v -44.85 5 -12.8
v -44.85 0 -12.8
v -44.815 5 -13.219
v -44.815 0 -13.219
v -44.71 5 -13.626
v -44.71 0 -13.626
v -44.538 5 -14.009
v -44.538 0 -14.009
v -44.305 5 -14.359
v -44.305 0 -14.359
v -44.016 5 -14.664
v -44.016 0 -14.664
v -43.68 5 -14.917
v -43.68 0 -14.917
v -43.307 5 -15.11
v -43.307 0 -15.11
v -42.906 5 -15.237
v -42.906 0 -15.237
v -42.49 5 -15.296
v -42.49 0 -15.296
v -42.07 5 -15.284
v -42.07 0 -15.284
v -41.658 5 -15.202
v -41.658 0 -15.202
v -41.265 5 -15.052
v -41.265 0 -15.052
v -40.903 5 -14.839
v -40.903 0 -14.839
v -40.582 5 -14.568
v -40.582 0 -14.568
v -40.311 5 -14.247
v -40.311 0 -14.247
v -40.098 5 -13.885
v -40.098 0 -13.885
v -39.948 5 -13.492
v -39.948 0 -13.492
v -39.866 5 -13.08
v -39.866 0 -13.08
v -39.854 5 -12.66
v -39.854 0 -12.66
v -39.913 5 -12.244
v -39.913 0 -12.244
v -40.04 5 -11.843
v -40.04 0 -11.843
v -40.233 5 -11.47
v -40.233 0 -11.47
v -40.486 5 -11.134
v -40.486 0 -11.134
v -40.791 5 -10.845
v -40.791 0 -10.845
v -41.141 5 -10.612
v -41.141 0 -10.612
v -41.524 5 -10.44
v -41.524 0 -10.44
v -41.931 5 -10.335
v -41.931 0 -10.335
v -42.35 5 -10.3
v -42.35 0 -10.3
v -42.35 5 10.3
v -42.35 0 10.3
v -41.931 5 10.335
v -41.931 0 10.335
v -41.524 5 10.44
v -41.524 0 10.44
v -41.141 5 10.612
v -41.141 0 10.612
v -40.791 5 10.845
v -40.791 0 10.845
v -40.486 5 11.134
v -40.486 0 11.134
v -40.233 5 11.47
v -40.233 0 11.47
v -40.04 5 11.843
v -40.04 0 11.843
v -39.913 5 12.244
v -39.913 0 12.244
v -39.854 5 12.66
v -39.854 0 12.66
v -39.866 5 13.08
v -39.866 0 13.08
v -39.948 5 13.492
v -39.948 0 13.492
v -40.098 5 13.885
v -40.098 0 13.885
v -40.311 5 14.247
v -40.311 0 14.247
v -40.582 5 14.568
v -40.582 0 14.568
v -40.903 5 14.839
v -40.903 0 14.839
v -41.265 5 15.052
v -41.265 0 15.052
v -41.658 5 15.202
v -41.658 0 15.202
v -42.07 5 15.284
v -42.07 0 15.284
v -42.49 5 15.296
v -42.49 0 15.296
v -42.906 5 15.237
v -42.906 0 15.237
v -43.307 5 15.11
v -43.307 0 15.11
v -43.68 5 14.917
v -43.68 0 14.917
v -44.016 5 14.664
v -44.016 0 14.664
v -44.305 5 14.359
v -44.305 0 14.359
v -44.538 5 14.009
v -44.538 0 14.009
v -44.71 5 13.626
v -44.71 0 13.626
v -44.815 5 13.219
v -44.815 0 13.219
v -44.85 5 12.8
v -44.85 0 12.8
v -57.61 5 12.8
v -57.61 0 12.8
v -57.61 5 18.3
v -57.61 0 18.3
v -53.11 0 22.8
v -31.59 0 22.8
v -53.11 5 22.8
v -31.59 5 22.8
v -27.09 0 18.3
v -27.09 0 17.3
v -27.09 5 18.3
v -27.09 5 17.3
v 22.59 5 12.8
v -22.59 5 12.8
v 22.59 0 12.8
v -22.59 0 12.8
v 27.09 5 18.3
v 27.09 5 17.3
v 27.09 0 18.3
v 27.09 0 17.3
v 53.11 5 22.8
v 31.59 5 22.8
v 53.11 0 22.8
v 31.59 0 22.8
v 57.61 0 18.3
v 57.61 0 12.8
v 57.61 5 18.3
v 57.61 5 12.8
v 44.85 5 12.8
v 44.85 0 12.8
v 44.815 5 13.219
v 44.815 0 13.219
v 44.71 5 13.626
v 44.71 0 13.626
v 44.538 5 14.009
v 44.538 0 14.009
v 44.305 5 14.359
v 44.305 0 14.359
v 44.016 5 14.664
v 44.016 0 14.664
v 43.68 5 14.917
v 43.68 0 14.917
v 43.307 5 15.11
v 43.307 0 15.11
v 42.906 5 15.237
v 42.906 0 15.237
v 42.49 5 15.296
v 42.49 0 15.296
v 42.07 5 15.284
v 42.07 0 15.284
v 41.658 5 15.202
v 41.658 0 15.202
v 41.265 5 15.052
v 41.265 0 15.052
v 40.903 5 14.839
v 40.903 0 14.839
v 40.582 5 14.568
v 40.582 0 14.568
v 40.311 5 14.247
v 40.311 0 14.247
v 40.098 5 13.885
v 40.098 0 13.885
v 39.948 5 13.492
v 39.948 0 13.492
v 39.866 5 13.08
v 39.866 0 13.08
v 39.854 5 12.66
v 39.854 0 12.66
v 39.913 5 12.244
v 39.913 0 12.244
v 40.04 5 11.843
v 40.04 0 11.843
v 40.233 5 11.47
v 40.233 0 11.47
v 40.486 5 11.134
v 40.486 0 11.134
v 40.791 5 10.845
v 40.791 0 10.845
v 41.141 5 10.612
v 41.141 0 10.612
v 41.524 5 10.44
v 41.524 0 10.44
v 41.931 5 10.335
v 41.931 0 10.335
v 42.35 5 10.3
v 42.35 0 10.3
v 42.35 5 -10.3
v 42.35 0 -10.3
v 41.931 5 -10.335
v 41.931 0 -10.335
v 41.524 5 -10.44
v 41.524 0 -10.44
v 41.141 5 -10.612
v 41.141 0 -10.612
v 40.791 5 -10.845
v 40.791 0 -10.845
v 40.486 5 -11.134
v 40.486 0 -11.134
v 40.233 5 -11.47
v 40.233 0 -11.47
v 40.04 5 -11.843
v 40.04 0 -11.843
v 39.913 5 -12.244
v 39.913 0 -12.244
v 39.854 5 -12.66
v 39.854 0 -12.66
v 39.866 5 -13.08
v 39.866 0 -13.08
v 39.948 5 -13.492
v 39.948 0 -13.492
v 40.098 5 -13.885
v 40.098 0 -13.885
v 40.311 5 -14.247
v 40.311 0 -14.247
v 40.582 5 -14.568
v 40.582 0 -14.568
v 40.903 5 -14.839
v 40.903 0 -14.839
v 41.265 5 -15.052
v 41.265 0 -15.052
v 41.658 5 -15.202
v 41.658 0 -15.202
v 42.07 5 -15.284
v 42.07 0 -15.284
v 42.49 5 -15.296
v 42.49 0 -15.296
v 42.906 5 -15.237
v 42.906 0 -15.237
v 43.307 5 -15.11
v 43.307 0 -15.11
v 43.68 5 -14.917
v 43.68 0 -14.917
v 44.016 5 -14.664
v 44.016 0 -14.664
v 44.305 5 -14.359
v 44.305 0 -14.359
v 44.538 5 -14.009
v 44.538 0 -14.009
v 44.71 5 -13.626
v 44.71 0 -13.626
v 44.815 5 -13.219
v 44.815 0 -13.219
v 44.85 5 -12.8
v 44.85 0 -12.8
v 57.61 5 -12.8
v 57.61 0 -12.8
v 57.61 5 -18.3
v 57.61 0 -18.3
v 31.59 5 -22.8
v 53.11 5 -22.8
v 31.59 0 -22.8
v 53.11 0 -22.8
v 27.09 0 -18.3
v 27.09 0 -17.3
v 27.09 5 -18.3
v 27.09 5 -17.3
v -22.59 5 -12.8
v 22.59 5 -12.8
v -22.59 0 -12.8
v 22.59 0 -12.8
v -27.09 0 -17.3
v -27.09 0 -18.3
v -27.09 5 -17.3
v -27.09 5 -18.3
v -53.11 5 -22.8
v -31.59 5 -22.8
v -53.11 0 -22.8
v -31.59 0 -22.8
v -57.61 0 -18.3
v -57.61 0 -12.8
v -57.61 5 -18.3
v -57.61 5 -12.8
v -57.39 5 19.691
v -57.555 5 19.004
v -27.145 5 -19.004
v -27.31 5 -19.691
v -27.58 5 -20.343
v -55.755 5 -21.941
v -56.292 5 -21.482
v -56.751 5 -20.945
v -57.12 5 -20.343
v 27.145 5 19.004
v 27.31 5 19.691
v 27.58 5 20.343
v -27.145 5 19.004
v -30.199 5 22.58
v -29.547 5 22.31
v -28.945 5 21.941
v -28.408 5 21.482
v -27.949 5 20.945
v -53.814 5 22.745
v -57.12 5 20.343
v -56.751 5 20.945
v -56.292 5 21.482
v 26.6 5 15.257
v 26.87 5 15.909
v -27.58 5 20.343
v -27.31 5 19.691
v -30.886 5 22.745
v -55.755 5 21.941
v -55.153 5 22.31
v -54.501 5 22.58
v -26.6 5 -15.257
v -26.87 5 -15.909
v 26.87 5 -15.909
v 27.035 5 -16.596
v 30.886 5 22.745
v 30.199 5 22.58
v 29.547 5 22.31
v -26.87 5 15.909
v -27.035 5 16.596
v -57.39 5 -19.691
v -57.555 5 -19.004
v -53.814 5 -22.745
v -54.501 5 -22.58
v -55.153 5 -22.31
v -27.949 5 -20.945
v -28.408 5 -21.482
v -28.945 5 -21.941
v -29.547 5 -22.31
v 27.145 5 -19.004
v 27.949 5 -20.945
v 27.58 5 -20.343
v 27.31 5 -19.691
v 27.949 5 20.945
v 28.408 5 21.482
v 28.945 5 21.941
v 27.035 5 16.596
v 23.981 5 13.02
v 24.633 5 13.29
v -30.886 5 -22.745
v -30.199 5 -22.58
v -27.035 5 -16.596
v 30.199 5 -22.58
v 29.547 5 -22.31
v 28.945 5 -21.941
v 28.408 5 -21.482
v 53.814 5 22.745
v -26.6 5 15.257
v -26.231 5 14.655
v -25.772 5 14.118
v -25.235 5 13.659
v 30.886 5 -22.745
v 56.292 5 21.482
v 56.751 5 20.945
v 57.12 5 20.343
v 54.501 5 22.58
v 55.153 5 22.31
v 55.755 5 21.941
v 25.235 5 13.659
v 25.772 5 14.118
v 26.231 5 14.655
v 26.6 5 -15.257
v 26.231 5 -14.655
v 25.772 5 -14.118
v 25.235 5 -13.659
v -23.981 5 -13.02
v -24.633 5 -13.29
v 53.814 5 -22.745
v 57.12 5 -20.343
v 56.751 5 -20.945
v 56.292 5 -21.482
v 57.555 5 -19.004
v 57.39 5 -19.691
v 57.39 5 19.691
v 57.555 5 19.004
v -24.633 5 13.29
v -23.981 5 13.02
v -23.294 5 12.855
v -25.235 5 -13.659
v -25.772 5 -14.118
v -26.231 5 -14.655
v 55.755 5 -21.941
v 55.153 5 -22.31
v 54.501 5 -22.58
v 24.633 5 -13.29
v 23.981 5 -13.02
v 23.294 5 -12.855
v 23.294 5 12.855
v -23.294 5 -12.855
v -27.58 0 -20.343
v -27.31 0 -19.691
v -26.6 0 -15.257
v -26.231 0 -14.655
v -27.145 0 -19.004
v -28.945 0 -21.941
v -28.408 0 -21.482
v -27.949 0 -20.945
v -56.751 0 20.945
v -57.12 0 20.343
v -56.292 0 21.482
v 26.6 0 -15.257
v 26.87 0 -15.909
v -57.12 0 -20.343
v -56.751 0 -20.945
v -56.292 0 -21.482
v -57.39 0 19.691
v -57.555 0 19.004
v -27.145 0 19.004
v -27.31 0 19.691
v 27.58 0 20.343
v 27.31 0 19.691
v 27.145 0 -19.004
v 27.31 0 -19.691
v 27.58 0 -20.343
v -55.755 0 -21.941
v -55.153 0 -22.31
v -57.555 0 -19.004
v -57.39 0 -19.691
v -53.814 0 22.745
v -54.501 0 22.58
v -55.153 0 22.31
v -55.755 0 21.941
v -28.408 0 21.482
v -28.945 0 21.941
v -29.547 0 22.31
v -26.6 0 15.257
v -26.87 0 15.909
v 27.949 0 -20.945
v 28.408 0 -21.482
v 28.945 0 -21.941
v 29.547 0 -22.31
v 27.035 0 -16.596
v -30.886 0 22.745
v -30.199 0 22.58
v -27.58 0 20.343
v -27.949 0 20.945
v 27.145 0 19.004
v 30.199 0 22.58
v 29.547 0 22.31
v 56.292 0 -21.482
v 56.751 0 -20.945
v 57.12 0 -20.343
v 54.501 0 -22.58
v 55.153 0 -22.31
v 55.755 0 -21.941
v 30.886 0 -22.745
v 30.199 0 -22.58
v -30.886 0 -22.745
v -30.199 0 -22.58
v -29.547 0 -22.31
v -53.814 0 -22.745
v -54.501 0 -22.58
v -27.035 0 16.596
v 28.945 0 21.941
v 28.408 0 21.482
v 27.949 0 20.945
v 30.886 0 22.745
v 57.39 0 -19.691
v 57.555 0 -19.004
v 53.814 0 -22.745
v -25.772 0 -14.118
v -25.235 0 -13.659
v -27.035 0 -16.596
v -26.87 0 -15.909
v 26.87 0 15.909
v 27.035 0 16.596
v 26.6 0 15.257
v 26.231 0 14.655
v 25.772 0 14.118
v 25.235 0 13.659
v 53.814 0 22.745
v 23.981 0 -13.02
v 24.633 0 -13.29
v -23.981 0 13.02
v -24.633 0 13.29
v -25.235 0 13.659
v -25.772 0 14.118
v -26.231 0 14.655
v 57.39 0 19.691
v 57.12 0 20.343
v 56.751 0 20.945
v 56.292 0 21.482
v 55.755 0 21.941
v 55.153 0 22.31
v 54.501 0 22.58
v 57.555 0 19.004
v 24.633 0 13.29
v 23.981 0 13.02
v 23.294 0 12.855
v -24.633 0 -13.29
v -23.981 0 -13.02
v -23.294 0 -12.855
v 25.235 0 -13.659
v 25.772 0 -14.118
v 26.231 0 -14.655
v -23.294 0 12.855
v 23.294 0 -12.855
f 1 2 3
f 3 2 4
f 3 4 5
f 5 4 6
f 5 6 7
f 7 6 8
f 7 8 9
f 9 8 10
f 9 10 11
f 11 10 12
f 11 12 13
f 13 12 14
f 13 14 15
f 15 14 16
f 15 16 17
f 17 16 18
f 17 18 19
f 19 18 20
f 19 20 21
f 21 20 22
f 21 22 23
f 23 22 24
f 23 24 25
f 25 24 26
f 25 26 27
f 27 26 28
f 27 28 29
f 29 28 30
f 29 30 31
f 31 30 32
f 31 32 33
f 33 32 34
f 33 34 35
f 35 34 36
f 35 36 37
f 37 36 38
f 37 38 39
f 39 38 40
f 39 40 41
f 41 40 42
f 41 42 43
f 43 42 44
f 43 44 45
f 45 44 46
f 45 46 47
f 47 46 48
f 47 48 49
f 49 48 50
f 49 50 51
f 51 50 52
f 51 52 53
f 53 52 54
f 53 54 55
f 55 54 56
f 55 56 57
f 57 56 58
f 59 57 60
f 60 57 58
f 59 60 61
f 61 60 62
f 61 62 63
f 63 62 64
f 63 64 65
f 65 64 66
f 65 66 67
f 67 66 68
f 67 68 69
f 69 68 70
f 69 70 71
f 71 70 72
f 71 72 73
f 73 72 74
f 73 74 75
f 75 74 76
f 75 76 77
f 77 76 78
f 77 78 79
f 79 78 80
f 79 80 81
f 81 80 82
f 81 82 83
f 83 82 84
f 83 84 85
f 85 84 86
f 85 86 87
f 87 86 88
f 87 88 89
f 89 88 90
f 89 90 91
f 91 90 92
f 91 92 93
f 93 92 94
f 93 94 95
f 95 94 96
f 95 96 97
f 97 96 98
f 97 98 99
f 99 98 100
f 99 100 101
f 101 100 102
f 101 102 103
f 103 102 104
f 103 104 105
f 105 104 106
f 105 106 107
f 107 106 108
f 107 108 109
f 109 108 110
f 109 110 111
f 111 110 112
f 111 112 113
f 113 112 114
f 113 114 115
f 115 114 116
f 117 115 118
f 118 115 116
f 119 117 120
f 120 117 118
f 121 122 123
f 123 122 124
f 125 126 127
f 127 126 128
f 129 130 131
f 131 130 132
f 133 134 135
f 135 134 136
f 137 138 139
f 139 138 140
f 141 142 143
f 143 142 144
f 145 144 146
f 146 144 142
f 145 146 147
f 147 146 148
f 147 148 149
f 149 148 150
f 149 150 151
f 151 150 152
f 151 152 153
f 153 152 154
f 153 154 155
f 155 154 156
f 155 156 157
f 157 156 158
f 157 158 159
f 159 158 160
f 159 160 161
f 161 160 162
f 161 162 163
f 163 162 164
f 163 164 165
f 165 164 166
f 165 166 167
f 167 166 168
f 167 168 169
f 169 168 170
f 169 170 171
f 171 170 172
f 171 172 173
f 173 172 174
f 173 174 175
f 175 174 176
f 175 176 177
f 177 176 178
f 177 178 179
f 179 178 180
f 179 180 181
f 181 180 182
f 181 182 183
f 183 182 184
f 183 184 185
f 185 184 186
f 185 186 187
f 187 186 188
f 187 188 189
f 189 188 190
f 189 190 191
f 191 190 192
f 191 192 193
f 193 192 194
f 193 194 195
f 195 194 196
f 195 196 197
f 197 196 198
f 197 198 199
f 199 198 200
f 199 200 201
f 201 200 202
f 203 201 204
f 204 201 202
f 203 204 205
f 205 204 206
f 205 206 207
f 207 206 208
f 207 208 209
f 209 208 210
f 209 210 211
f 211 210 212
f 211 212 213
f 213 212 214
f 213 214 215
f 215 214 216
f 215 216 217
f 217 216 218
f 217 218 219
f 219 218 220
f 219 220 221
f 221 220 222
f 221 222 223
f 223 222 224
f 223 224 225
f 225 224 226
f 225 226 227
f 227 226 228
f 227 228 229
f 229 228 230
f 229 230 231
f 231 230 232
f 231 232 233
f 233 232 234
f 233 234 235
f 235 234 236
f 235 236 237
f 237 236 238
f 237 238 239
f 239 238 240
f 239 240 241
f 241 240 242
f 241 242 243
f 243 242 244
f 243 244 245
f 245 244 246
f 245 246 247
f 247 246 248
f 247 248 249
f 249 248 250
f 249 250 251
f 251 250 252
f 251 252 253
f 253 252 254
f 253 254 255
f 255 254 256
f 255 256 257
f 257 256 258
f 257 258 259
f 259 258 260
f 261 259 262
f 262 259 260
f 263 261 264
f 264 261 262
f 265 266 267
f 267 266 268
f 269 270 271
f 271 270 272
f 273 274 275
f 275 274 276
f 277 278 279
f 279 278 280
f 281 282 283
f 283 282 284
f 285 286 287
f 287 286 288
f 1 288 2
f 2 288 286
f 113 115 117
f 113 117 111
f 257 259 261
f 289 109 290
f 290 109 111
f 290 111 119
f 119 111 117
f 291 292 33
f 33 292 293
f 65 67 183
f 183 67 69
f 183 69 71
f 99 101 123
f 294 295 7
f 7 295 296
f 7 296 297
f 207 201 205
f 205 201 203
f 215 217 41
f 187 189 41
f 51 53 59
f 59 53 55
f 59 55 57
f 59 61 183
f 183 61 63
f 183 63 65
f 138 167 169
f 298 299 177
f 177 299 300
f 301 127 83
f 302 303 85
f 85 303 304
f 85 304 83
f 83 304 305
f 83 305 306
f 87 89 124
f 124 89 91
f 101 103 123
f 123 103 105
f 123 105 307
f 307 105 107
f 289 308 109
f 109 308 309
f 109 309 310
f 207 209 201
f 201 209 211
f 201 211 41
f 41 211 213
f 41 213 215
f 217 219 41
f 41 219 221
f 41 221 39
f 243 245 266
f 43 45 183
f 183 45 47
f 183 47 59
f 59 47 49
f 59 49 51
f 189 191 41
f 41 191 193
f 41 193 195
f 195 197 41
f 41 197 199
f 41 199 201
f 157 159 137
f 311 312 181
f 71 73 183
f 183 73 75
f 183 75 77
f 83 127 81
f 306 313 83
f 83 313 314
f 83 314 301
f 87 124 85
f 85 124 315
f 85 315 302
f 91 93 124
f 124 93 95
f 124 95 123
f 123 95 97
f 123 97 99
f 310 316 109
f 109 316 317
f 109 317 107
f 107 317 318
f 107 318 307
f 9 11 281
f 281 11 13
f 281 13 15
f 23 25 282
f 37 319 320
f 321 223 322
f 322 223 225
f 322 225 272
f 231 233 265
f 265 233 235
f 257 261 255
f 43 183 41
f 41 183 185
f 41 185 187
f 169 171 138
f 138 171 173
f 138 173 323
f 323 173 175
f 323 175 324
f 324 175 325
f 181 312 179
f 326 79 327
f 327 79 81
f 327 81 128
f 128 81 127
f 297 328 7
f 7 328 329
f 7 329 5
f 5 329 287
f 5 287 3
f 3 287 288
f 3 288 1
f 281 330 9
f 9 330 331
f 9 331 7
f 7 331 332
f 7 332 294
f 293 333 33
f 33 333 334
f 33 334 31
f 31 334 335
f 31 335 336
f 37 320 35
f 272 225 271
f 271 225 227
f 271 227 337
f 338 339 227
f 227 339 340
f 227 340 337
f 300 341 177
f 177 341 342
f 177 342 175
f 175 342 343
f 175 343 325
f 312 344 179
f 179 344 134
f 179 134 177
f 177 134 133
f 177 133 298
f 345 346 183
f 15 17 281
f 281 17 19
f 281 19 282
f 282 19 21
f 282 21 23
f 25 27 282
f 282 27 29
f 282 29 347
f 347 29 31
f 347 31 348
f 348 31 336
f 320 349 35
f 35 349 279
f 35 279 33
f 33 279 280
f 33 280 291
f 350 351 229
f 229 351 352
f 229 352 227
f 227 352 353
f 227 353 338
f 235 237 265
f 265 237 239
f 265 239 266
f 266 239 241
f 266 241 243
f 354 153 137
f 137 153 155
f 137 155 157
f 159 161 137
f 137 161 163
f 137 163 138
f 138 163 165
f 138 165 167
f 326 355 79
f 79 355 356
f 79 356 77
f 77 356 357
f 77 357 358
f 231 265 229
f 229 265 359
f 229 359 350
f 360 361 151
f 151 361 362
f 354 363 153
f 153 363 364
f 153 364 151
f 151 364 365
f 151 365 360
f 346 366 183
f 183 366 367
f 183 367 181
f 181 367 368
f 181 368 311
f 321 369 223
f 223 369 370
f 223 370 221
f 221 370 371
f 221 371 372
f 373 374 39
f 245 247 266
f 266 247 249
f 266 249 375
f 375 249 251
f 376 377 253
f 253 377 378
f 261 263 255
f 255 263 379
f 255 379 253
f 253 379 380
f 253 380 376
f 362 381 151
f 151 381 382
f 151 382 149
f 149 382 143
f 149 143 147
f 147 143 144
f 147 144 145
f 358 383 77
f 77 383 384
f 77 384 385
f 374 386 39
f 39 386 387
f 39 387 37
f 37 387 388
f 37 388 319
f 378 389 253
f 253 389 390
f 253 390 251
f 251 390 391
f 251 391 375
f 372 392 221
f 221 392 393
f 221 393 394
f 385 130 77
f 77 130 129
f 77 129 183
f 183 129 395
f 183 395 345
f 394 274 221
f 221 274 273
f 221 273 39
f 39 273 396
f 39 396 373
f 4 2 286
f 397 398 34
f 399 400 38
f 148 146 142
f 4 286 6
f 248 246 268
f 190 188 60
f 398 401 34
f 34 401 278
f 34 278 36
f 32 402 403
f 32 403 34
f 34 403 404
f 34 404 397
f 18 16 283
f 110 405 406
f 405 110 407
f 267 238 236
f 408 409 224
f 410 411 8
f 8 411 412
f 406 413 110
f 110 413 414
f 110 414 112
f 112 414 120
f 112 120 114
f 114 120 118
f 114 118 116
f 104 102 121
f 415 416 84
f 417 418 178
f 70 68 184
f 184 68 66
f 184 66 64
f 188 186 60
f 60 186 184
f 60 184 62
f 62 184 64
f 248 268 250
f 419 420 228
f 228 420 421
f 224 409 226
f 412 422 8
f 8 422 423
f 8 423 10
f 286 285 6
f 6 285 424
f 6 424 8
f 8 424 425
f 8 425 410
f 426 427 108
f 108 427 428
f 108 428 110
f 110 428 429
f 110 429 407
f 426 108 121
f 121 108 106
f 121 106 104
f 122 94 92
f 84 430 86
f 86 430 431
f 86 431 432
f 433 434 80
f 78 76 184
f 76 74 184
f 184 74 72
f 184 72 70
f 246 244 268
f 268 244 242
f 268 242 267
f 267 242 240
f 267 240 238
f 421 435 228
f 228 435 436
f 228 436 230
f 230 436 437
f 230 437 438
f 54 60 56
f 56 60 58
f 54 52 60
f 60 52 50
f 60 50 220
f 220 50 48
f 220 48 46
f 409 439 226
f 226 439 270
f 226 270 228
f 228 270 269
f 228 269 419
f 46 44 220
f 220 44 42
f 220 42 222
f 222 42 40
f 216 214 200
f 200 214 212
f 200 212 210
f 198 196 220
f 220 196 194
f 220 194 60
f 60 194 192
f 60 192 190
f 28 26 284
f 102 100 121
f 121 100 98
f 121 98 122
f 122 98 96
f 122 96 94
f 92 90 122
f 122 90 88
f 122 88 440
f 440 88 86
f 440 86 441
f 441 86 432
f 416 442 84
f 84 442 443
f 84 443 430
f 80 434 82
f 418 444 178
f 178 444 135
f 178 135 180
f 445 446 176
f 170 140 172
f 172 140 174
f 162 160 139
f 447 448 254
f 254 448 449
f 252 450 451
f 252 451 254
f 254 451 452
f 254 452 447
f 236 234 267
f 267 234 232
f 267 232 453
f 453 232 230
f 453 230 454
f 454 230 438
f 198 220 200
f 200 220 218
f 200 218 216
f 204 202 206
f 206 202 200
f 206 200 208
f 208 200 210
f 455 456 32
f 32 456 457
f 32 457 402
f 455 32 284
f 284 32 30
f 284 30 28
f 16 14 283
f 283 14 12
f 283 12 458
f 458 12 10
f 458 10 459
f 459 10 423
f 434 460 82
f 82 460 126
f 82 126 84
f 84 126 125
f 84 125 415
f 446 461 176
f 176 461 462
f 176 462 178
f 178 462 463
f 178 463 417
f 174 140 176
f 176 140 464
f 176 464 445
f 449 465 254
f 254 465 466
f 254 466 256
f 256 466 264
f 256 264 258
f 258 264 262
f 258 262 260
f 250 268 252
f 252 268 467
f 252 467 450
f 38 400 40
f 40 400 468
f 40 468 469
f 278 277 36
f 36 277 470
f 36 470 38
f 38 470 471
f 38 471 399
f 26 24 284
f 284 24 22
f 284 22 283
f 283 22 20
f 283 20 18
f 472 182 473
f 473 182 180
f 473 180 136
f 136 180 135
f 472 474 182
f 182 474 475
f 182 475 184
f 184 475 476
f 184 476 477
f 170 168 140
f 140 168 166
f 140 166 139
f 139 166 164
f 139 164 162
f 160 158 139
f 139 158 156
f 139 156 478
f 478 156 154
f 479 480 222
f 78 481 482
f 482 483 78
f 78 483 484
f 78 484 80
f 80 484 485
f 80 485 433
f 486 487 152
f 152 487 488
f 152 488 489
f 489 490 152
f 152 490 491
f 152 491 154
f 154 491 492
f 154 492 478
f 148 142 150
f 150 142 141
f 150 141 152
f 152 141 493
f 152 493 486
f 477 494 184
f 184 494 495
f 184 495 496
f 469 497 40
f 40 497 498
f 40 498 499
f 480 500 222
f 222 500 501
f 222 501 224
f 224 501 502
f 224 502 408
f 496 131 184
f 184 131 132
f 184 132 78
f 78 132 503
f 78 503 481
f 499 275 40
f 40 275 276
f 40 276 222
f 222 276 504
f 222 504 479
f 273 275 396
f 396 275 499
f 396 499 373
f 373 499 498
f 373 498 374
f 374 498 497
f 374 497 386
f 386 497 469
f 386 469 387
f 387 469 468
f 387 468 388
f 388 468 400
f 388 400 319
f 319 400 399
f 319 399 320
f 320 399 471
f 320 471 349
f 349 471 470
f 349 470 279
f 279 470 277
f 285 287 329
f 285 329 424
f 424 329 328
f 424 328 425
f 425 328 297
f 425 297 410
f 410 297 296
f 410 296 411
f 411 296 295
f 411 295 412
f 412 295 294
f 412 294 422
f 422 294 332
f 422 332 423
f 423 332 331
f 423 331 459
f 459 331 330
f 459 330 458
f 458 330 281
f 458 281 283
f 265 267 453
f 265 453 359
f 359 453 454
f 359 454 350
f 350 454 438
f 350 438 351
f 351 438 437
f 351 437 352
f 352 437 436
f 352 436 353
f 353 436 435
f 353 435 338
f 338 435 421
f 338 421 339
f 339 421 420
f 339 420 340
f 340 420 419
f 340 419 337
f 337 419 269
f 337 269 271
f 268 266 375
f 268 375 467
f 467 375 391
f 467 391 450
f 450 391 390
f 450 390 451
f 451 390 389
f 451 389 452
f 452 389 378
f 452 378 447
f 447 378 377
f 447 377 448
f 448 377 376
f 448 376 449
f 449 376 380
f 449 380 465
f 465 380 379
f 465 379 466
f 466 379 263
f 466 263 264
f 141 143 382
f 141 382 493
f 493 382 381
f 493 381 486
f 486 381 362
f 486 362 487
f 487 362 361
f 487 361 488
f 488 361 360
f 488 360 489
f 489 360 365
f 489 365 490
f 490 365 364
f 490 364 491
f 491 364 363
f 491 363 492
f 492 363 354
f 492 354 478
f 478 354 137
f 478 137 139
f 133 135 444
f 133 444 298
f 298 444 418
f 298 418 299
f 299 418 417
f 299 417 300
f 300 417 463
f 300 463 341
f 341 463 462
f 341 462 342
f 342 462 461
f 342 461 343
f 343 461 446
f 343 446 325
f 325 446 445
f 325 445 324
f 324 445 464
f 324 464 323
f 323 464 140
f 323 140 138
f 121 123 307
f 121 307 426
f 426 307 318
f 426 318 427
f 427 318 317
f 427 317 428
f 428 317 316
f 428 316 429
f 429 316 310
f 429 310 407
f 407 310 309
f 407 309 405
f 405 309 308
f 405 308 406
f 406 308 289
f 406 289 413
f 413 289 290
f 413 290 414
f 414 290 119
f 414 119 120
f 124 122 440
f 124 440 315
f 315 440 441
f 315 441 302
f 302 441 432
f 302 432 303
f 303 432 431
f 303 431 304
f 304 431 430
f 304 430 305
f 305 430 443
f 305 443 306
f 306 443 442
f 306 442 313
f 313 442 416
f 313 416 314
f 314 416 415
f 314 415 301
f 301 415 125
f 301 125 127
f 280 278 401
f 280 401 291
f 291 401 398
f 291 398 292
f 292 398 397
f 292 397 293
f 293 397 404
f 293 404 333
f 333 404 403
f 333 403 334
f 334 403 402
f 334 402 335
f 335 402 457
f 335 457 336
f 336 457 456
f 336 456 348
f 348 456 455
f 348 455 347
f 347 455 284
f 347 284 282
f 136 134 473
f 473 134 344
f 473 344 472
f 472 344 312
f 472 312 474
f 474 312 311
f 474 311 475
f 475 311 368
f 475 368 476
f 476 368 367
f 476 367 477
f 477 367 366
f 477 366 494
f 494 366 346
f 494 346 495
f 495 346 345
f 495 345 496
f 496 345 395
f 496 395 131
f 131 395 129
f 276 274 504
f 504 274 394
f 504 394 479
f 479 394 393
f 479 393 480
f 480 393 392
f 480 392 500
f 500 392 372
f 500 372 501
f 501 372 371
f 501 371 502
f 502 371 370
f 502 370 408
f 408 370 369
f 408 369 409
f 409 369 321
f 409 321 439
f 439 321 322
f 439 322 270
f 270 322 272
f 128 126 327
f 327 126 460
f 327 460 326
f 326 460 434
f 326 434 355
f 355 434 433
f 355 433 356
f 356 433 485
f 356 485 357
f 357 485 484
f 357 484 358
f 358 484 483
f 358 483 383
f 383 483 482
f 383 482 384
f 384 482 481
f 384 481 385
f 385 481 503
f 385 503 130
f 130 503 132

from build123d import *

# Parameters (mm, degrees)
BOSS_EXTRUDE1_DEPTH = 5
FILLET1_R           = 4.5


with BuildPart() as part:
    # Sketch1 → Boss-Extrude1 (new body)
    with BuildSketch(Plane(origin=(0, 0, 0), x_dir=(1, 0, 0), z_dir=(0, 1, 0))):
        with BuildLine():
            ThreePointArc((-44.85, 12.8), (-42.35, 15.3), (-39.85, 12.8))
            Line((-39.85, 12.8), (-27.09, 12.8))
            Line((-27.09, 12.8), (-27.09, 22.8))
            Line((-27.09, 22.8), (-57.61, 22.8))
            Line((-57.61, 22.8), (-57.61, 12.8))
            Line((-57.61, 12.8), (-44.85, 12.8))
        make_face()
        with BuildLine():
            ThreePointArc((-42.35, -10.3), (-40.582233047, -11.032233047), (-39.85, -12.8))
            Line((-39.85, -12.8), (-27.09, -12.8))
            Line((-27.09, -12.8), (27.09, -12.8))
            Line((27.09, -12.8), (39.85, -12.8))
            ThreePointArc((39.85, -12.8), (40.582233047, -11.032233047), (42.35, -10.3))
            Line((42.35, -10.3), (42.35, 10.3))
            ThreePointArc((42.35, 10.3), (40.582233047, 11.032233047), (39.85, 12.8))
            Line((39.85, 12.8), (27.09, 12.8))
            Line((27.09, 12.8), (-27.09, 12.8))
            Line((-27.09, 12.8), (-39.85, 12.8))
            ThreePointArc((-39.85, 12.8), (-40.582233047, 11.032233047), (-42.35, 10.3))
            Line((-42.35, 10.3), (-42.35, -10.3))
        make_face()
        with BuildLine():
            Line((-44.85, -12.8), (-57.61, -12.8))
            Line((-57.61, -12.8), (-57.61, -22.8))
            Line((-57.61, -22.8), (-27.09, -22.8))
            Line((-27.09, -22.8), (-27.09, -12.8))
            Line((-27.09, -12.8), (-39.85, -12.8))
            ThreePointArc((-39.85, -12.8), (-42.35, -15.3), (-44.85, -12.8))
        make_face()
        with BuildLine():
            Line((39.85, -12.8), (27.09, -12.8))
            Line((27.09, -12.8), (27.09, -22.8))
            Line((27.09, -22.8), (57.61, -22.8))
            Line((57.61, -22.8), (57.61, -12.8))
            Line((57.61, -12.8), (44.85, -12.8))
            ThreePointArc((44.85, -12.8), (42.35, -15.3), (39.85, -12.8))
        make_face()
        with BuildLine():
            Line((27.09, 22.8), (27.09, 12.8))
            Line((27.09, 12.8), (39.85, 12.8))
            ThreePointArc((39.85, 12.8), (42.35, 15.3), (44.85, 12.8))
            Line((44.85, 12.8), (57.61, 12.8))
            Line((57.61, 12.8), (57.61, 22.8))
            Line((57.61, 22.8), (27.09, 22.8))
        make_face()
    extrude(amount=BOSS_EXTRUDE1_DEPTH)

    # Fillet1
    fillet1_edges = [part.edges().sort_by_distance(p)[0] for p in [
        (-57.61, 2.5, -22.8),
        (-27.09, 2.5, -22.8),
        (-27.09, 2.5, -12.8),
        (27.09, 2.5, -12.8),
        (27.09, 2.5, -22.8),
        (57.61, 2.5, -22.8),
        (57.61, 2.5, 22.8),
        (27.09, 2.5, 22.8),
        (27.09, 2.5, 12.8),
        (-27.09, 2.5, 12.8),
        (-27.09, 2.5, 22.8),
        (-57.61, 2.5, 22.8),
    ]]
    fillet(fillet1_edges, radius=FILLET1_R)


solid = part.part
